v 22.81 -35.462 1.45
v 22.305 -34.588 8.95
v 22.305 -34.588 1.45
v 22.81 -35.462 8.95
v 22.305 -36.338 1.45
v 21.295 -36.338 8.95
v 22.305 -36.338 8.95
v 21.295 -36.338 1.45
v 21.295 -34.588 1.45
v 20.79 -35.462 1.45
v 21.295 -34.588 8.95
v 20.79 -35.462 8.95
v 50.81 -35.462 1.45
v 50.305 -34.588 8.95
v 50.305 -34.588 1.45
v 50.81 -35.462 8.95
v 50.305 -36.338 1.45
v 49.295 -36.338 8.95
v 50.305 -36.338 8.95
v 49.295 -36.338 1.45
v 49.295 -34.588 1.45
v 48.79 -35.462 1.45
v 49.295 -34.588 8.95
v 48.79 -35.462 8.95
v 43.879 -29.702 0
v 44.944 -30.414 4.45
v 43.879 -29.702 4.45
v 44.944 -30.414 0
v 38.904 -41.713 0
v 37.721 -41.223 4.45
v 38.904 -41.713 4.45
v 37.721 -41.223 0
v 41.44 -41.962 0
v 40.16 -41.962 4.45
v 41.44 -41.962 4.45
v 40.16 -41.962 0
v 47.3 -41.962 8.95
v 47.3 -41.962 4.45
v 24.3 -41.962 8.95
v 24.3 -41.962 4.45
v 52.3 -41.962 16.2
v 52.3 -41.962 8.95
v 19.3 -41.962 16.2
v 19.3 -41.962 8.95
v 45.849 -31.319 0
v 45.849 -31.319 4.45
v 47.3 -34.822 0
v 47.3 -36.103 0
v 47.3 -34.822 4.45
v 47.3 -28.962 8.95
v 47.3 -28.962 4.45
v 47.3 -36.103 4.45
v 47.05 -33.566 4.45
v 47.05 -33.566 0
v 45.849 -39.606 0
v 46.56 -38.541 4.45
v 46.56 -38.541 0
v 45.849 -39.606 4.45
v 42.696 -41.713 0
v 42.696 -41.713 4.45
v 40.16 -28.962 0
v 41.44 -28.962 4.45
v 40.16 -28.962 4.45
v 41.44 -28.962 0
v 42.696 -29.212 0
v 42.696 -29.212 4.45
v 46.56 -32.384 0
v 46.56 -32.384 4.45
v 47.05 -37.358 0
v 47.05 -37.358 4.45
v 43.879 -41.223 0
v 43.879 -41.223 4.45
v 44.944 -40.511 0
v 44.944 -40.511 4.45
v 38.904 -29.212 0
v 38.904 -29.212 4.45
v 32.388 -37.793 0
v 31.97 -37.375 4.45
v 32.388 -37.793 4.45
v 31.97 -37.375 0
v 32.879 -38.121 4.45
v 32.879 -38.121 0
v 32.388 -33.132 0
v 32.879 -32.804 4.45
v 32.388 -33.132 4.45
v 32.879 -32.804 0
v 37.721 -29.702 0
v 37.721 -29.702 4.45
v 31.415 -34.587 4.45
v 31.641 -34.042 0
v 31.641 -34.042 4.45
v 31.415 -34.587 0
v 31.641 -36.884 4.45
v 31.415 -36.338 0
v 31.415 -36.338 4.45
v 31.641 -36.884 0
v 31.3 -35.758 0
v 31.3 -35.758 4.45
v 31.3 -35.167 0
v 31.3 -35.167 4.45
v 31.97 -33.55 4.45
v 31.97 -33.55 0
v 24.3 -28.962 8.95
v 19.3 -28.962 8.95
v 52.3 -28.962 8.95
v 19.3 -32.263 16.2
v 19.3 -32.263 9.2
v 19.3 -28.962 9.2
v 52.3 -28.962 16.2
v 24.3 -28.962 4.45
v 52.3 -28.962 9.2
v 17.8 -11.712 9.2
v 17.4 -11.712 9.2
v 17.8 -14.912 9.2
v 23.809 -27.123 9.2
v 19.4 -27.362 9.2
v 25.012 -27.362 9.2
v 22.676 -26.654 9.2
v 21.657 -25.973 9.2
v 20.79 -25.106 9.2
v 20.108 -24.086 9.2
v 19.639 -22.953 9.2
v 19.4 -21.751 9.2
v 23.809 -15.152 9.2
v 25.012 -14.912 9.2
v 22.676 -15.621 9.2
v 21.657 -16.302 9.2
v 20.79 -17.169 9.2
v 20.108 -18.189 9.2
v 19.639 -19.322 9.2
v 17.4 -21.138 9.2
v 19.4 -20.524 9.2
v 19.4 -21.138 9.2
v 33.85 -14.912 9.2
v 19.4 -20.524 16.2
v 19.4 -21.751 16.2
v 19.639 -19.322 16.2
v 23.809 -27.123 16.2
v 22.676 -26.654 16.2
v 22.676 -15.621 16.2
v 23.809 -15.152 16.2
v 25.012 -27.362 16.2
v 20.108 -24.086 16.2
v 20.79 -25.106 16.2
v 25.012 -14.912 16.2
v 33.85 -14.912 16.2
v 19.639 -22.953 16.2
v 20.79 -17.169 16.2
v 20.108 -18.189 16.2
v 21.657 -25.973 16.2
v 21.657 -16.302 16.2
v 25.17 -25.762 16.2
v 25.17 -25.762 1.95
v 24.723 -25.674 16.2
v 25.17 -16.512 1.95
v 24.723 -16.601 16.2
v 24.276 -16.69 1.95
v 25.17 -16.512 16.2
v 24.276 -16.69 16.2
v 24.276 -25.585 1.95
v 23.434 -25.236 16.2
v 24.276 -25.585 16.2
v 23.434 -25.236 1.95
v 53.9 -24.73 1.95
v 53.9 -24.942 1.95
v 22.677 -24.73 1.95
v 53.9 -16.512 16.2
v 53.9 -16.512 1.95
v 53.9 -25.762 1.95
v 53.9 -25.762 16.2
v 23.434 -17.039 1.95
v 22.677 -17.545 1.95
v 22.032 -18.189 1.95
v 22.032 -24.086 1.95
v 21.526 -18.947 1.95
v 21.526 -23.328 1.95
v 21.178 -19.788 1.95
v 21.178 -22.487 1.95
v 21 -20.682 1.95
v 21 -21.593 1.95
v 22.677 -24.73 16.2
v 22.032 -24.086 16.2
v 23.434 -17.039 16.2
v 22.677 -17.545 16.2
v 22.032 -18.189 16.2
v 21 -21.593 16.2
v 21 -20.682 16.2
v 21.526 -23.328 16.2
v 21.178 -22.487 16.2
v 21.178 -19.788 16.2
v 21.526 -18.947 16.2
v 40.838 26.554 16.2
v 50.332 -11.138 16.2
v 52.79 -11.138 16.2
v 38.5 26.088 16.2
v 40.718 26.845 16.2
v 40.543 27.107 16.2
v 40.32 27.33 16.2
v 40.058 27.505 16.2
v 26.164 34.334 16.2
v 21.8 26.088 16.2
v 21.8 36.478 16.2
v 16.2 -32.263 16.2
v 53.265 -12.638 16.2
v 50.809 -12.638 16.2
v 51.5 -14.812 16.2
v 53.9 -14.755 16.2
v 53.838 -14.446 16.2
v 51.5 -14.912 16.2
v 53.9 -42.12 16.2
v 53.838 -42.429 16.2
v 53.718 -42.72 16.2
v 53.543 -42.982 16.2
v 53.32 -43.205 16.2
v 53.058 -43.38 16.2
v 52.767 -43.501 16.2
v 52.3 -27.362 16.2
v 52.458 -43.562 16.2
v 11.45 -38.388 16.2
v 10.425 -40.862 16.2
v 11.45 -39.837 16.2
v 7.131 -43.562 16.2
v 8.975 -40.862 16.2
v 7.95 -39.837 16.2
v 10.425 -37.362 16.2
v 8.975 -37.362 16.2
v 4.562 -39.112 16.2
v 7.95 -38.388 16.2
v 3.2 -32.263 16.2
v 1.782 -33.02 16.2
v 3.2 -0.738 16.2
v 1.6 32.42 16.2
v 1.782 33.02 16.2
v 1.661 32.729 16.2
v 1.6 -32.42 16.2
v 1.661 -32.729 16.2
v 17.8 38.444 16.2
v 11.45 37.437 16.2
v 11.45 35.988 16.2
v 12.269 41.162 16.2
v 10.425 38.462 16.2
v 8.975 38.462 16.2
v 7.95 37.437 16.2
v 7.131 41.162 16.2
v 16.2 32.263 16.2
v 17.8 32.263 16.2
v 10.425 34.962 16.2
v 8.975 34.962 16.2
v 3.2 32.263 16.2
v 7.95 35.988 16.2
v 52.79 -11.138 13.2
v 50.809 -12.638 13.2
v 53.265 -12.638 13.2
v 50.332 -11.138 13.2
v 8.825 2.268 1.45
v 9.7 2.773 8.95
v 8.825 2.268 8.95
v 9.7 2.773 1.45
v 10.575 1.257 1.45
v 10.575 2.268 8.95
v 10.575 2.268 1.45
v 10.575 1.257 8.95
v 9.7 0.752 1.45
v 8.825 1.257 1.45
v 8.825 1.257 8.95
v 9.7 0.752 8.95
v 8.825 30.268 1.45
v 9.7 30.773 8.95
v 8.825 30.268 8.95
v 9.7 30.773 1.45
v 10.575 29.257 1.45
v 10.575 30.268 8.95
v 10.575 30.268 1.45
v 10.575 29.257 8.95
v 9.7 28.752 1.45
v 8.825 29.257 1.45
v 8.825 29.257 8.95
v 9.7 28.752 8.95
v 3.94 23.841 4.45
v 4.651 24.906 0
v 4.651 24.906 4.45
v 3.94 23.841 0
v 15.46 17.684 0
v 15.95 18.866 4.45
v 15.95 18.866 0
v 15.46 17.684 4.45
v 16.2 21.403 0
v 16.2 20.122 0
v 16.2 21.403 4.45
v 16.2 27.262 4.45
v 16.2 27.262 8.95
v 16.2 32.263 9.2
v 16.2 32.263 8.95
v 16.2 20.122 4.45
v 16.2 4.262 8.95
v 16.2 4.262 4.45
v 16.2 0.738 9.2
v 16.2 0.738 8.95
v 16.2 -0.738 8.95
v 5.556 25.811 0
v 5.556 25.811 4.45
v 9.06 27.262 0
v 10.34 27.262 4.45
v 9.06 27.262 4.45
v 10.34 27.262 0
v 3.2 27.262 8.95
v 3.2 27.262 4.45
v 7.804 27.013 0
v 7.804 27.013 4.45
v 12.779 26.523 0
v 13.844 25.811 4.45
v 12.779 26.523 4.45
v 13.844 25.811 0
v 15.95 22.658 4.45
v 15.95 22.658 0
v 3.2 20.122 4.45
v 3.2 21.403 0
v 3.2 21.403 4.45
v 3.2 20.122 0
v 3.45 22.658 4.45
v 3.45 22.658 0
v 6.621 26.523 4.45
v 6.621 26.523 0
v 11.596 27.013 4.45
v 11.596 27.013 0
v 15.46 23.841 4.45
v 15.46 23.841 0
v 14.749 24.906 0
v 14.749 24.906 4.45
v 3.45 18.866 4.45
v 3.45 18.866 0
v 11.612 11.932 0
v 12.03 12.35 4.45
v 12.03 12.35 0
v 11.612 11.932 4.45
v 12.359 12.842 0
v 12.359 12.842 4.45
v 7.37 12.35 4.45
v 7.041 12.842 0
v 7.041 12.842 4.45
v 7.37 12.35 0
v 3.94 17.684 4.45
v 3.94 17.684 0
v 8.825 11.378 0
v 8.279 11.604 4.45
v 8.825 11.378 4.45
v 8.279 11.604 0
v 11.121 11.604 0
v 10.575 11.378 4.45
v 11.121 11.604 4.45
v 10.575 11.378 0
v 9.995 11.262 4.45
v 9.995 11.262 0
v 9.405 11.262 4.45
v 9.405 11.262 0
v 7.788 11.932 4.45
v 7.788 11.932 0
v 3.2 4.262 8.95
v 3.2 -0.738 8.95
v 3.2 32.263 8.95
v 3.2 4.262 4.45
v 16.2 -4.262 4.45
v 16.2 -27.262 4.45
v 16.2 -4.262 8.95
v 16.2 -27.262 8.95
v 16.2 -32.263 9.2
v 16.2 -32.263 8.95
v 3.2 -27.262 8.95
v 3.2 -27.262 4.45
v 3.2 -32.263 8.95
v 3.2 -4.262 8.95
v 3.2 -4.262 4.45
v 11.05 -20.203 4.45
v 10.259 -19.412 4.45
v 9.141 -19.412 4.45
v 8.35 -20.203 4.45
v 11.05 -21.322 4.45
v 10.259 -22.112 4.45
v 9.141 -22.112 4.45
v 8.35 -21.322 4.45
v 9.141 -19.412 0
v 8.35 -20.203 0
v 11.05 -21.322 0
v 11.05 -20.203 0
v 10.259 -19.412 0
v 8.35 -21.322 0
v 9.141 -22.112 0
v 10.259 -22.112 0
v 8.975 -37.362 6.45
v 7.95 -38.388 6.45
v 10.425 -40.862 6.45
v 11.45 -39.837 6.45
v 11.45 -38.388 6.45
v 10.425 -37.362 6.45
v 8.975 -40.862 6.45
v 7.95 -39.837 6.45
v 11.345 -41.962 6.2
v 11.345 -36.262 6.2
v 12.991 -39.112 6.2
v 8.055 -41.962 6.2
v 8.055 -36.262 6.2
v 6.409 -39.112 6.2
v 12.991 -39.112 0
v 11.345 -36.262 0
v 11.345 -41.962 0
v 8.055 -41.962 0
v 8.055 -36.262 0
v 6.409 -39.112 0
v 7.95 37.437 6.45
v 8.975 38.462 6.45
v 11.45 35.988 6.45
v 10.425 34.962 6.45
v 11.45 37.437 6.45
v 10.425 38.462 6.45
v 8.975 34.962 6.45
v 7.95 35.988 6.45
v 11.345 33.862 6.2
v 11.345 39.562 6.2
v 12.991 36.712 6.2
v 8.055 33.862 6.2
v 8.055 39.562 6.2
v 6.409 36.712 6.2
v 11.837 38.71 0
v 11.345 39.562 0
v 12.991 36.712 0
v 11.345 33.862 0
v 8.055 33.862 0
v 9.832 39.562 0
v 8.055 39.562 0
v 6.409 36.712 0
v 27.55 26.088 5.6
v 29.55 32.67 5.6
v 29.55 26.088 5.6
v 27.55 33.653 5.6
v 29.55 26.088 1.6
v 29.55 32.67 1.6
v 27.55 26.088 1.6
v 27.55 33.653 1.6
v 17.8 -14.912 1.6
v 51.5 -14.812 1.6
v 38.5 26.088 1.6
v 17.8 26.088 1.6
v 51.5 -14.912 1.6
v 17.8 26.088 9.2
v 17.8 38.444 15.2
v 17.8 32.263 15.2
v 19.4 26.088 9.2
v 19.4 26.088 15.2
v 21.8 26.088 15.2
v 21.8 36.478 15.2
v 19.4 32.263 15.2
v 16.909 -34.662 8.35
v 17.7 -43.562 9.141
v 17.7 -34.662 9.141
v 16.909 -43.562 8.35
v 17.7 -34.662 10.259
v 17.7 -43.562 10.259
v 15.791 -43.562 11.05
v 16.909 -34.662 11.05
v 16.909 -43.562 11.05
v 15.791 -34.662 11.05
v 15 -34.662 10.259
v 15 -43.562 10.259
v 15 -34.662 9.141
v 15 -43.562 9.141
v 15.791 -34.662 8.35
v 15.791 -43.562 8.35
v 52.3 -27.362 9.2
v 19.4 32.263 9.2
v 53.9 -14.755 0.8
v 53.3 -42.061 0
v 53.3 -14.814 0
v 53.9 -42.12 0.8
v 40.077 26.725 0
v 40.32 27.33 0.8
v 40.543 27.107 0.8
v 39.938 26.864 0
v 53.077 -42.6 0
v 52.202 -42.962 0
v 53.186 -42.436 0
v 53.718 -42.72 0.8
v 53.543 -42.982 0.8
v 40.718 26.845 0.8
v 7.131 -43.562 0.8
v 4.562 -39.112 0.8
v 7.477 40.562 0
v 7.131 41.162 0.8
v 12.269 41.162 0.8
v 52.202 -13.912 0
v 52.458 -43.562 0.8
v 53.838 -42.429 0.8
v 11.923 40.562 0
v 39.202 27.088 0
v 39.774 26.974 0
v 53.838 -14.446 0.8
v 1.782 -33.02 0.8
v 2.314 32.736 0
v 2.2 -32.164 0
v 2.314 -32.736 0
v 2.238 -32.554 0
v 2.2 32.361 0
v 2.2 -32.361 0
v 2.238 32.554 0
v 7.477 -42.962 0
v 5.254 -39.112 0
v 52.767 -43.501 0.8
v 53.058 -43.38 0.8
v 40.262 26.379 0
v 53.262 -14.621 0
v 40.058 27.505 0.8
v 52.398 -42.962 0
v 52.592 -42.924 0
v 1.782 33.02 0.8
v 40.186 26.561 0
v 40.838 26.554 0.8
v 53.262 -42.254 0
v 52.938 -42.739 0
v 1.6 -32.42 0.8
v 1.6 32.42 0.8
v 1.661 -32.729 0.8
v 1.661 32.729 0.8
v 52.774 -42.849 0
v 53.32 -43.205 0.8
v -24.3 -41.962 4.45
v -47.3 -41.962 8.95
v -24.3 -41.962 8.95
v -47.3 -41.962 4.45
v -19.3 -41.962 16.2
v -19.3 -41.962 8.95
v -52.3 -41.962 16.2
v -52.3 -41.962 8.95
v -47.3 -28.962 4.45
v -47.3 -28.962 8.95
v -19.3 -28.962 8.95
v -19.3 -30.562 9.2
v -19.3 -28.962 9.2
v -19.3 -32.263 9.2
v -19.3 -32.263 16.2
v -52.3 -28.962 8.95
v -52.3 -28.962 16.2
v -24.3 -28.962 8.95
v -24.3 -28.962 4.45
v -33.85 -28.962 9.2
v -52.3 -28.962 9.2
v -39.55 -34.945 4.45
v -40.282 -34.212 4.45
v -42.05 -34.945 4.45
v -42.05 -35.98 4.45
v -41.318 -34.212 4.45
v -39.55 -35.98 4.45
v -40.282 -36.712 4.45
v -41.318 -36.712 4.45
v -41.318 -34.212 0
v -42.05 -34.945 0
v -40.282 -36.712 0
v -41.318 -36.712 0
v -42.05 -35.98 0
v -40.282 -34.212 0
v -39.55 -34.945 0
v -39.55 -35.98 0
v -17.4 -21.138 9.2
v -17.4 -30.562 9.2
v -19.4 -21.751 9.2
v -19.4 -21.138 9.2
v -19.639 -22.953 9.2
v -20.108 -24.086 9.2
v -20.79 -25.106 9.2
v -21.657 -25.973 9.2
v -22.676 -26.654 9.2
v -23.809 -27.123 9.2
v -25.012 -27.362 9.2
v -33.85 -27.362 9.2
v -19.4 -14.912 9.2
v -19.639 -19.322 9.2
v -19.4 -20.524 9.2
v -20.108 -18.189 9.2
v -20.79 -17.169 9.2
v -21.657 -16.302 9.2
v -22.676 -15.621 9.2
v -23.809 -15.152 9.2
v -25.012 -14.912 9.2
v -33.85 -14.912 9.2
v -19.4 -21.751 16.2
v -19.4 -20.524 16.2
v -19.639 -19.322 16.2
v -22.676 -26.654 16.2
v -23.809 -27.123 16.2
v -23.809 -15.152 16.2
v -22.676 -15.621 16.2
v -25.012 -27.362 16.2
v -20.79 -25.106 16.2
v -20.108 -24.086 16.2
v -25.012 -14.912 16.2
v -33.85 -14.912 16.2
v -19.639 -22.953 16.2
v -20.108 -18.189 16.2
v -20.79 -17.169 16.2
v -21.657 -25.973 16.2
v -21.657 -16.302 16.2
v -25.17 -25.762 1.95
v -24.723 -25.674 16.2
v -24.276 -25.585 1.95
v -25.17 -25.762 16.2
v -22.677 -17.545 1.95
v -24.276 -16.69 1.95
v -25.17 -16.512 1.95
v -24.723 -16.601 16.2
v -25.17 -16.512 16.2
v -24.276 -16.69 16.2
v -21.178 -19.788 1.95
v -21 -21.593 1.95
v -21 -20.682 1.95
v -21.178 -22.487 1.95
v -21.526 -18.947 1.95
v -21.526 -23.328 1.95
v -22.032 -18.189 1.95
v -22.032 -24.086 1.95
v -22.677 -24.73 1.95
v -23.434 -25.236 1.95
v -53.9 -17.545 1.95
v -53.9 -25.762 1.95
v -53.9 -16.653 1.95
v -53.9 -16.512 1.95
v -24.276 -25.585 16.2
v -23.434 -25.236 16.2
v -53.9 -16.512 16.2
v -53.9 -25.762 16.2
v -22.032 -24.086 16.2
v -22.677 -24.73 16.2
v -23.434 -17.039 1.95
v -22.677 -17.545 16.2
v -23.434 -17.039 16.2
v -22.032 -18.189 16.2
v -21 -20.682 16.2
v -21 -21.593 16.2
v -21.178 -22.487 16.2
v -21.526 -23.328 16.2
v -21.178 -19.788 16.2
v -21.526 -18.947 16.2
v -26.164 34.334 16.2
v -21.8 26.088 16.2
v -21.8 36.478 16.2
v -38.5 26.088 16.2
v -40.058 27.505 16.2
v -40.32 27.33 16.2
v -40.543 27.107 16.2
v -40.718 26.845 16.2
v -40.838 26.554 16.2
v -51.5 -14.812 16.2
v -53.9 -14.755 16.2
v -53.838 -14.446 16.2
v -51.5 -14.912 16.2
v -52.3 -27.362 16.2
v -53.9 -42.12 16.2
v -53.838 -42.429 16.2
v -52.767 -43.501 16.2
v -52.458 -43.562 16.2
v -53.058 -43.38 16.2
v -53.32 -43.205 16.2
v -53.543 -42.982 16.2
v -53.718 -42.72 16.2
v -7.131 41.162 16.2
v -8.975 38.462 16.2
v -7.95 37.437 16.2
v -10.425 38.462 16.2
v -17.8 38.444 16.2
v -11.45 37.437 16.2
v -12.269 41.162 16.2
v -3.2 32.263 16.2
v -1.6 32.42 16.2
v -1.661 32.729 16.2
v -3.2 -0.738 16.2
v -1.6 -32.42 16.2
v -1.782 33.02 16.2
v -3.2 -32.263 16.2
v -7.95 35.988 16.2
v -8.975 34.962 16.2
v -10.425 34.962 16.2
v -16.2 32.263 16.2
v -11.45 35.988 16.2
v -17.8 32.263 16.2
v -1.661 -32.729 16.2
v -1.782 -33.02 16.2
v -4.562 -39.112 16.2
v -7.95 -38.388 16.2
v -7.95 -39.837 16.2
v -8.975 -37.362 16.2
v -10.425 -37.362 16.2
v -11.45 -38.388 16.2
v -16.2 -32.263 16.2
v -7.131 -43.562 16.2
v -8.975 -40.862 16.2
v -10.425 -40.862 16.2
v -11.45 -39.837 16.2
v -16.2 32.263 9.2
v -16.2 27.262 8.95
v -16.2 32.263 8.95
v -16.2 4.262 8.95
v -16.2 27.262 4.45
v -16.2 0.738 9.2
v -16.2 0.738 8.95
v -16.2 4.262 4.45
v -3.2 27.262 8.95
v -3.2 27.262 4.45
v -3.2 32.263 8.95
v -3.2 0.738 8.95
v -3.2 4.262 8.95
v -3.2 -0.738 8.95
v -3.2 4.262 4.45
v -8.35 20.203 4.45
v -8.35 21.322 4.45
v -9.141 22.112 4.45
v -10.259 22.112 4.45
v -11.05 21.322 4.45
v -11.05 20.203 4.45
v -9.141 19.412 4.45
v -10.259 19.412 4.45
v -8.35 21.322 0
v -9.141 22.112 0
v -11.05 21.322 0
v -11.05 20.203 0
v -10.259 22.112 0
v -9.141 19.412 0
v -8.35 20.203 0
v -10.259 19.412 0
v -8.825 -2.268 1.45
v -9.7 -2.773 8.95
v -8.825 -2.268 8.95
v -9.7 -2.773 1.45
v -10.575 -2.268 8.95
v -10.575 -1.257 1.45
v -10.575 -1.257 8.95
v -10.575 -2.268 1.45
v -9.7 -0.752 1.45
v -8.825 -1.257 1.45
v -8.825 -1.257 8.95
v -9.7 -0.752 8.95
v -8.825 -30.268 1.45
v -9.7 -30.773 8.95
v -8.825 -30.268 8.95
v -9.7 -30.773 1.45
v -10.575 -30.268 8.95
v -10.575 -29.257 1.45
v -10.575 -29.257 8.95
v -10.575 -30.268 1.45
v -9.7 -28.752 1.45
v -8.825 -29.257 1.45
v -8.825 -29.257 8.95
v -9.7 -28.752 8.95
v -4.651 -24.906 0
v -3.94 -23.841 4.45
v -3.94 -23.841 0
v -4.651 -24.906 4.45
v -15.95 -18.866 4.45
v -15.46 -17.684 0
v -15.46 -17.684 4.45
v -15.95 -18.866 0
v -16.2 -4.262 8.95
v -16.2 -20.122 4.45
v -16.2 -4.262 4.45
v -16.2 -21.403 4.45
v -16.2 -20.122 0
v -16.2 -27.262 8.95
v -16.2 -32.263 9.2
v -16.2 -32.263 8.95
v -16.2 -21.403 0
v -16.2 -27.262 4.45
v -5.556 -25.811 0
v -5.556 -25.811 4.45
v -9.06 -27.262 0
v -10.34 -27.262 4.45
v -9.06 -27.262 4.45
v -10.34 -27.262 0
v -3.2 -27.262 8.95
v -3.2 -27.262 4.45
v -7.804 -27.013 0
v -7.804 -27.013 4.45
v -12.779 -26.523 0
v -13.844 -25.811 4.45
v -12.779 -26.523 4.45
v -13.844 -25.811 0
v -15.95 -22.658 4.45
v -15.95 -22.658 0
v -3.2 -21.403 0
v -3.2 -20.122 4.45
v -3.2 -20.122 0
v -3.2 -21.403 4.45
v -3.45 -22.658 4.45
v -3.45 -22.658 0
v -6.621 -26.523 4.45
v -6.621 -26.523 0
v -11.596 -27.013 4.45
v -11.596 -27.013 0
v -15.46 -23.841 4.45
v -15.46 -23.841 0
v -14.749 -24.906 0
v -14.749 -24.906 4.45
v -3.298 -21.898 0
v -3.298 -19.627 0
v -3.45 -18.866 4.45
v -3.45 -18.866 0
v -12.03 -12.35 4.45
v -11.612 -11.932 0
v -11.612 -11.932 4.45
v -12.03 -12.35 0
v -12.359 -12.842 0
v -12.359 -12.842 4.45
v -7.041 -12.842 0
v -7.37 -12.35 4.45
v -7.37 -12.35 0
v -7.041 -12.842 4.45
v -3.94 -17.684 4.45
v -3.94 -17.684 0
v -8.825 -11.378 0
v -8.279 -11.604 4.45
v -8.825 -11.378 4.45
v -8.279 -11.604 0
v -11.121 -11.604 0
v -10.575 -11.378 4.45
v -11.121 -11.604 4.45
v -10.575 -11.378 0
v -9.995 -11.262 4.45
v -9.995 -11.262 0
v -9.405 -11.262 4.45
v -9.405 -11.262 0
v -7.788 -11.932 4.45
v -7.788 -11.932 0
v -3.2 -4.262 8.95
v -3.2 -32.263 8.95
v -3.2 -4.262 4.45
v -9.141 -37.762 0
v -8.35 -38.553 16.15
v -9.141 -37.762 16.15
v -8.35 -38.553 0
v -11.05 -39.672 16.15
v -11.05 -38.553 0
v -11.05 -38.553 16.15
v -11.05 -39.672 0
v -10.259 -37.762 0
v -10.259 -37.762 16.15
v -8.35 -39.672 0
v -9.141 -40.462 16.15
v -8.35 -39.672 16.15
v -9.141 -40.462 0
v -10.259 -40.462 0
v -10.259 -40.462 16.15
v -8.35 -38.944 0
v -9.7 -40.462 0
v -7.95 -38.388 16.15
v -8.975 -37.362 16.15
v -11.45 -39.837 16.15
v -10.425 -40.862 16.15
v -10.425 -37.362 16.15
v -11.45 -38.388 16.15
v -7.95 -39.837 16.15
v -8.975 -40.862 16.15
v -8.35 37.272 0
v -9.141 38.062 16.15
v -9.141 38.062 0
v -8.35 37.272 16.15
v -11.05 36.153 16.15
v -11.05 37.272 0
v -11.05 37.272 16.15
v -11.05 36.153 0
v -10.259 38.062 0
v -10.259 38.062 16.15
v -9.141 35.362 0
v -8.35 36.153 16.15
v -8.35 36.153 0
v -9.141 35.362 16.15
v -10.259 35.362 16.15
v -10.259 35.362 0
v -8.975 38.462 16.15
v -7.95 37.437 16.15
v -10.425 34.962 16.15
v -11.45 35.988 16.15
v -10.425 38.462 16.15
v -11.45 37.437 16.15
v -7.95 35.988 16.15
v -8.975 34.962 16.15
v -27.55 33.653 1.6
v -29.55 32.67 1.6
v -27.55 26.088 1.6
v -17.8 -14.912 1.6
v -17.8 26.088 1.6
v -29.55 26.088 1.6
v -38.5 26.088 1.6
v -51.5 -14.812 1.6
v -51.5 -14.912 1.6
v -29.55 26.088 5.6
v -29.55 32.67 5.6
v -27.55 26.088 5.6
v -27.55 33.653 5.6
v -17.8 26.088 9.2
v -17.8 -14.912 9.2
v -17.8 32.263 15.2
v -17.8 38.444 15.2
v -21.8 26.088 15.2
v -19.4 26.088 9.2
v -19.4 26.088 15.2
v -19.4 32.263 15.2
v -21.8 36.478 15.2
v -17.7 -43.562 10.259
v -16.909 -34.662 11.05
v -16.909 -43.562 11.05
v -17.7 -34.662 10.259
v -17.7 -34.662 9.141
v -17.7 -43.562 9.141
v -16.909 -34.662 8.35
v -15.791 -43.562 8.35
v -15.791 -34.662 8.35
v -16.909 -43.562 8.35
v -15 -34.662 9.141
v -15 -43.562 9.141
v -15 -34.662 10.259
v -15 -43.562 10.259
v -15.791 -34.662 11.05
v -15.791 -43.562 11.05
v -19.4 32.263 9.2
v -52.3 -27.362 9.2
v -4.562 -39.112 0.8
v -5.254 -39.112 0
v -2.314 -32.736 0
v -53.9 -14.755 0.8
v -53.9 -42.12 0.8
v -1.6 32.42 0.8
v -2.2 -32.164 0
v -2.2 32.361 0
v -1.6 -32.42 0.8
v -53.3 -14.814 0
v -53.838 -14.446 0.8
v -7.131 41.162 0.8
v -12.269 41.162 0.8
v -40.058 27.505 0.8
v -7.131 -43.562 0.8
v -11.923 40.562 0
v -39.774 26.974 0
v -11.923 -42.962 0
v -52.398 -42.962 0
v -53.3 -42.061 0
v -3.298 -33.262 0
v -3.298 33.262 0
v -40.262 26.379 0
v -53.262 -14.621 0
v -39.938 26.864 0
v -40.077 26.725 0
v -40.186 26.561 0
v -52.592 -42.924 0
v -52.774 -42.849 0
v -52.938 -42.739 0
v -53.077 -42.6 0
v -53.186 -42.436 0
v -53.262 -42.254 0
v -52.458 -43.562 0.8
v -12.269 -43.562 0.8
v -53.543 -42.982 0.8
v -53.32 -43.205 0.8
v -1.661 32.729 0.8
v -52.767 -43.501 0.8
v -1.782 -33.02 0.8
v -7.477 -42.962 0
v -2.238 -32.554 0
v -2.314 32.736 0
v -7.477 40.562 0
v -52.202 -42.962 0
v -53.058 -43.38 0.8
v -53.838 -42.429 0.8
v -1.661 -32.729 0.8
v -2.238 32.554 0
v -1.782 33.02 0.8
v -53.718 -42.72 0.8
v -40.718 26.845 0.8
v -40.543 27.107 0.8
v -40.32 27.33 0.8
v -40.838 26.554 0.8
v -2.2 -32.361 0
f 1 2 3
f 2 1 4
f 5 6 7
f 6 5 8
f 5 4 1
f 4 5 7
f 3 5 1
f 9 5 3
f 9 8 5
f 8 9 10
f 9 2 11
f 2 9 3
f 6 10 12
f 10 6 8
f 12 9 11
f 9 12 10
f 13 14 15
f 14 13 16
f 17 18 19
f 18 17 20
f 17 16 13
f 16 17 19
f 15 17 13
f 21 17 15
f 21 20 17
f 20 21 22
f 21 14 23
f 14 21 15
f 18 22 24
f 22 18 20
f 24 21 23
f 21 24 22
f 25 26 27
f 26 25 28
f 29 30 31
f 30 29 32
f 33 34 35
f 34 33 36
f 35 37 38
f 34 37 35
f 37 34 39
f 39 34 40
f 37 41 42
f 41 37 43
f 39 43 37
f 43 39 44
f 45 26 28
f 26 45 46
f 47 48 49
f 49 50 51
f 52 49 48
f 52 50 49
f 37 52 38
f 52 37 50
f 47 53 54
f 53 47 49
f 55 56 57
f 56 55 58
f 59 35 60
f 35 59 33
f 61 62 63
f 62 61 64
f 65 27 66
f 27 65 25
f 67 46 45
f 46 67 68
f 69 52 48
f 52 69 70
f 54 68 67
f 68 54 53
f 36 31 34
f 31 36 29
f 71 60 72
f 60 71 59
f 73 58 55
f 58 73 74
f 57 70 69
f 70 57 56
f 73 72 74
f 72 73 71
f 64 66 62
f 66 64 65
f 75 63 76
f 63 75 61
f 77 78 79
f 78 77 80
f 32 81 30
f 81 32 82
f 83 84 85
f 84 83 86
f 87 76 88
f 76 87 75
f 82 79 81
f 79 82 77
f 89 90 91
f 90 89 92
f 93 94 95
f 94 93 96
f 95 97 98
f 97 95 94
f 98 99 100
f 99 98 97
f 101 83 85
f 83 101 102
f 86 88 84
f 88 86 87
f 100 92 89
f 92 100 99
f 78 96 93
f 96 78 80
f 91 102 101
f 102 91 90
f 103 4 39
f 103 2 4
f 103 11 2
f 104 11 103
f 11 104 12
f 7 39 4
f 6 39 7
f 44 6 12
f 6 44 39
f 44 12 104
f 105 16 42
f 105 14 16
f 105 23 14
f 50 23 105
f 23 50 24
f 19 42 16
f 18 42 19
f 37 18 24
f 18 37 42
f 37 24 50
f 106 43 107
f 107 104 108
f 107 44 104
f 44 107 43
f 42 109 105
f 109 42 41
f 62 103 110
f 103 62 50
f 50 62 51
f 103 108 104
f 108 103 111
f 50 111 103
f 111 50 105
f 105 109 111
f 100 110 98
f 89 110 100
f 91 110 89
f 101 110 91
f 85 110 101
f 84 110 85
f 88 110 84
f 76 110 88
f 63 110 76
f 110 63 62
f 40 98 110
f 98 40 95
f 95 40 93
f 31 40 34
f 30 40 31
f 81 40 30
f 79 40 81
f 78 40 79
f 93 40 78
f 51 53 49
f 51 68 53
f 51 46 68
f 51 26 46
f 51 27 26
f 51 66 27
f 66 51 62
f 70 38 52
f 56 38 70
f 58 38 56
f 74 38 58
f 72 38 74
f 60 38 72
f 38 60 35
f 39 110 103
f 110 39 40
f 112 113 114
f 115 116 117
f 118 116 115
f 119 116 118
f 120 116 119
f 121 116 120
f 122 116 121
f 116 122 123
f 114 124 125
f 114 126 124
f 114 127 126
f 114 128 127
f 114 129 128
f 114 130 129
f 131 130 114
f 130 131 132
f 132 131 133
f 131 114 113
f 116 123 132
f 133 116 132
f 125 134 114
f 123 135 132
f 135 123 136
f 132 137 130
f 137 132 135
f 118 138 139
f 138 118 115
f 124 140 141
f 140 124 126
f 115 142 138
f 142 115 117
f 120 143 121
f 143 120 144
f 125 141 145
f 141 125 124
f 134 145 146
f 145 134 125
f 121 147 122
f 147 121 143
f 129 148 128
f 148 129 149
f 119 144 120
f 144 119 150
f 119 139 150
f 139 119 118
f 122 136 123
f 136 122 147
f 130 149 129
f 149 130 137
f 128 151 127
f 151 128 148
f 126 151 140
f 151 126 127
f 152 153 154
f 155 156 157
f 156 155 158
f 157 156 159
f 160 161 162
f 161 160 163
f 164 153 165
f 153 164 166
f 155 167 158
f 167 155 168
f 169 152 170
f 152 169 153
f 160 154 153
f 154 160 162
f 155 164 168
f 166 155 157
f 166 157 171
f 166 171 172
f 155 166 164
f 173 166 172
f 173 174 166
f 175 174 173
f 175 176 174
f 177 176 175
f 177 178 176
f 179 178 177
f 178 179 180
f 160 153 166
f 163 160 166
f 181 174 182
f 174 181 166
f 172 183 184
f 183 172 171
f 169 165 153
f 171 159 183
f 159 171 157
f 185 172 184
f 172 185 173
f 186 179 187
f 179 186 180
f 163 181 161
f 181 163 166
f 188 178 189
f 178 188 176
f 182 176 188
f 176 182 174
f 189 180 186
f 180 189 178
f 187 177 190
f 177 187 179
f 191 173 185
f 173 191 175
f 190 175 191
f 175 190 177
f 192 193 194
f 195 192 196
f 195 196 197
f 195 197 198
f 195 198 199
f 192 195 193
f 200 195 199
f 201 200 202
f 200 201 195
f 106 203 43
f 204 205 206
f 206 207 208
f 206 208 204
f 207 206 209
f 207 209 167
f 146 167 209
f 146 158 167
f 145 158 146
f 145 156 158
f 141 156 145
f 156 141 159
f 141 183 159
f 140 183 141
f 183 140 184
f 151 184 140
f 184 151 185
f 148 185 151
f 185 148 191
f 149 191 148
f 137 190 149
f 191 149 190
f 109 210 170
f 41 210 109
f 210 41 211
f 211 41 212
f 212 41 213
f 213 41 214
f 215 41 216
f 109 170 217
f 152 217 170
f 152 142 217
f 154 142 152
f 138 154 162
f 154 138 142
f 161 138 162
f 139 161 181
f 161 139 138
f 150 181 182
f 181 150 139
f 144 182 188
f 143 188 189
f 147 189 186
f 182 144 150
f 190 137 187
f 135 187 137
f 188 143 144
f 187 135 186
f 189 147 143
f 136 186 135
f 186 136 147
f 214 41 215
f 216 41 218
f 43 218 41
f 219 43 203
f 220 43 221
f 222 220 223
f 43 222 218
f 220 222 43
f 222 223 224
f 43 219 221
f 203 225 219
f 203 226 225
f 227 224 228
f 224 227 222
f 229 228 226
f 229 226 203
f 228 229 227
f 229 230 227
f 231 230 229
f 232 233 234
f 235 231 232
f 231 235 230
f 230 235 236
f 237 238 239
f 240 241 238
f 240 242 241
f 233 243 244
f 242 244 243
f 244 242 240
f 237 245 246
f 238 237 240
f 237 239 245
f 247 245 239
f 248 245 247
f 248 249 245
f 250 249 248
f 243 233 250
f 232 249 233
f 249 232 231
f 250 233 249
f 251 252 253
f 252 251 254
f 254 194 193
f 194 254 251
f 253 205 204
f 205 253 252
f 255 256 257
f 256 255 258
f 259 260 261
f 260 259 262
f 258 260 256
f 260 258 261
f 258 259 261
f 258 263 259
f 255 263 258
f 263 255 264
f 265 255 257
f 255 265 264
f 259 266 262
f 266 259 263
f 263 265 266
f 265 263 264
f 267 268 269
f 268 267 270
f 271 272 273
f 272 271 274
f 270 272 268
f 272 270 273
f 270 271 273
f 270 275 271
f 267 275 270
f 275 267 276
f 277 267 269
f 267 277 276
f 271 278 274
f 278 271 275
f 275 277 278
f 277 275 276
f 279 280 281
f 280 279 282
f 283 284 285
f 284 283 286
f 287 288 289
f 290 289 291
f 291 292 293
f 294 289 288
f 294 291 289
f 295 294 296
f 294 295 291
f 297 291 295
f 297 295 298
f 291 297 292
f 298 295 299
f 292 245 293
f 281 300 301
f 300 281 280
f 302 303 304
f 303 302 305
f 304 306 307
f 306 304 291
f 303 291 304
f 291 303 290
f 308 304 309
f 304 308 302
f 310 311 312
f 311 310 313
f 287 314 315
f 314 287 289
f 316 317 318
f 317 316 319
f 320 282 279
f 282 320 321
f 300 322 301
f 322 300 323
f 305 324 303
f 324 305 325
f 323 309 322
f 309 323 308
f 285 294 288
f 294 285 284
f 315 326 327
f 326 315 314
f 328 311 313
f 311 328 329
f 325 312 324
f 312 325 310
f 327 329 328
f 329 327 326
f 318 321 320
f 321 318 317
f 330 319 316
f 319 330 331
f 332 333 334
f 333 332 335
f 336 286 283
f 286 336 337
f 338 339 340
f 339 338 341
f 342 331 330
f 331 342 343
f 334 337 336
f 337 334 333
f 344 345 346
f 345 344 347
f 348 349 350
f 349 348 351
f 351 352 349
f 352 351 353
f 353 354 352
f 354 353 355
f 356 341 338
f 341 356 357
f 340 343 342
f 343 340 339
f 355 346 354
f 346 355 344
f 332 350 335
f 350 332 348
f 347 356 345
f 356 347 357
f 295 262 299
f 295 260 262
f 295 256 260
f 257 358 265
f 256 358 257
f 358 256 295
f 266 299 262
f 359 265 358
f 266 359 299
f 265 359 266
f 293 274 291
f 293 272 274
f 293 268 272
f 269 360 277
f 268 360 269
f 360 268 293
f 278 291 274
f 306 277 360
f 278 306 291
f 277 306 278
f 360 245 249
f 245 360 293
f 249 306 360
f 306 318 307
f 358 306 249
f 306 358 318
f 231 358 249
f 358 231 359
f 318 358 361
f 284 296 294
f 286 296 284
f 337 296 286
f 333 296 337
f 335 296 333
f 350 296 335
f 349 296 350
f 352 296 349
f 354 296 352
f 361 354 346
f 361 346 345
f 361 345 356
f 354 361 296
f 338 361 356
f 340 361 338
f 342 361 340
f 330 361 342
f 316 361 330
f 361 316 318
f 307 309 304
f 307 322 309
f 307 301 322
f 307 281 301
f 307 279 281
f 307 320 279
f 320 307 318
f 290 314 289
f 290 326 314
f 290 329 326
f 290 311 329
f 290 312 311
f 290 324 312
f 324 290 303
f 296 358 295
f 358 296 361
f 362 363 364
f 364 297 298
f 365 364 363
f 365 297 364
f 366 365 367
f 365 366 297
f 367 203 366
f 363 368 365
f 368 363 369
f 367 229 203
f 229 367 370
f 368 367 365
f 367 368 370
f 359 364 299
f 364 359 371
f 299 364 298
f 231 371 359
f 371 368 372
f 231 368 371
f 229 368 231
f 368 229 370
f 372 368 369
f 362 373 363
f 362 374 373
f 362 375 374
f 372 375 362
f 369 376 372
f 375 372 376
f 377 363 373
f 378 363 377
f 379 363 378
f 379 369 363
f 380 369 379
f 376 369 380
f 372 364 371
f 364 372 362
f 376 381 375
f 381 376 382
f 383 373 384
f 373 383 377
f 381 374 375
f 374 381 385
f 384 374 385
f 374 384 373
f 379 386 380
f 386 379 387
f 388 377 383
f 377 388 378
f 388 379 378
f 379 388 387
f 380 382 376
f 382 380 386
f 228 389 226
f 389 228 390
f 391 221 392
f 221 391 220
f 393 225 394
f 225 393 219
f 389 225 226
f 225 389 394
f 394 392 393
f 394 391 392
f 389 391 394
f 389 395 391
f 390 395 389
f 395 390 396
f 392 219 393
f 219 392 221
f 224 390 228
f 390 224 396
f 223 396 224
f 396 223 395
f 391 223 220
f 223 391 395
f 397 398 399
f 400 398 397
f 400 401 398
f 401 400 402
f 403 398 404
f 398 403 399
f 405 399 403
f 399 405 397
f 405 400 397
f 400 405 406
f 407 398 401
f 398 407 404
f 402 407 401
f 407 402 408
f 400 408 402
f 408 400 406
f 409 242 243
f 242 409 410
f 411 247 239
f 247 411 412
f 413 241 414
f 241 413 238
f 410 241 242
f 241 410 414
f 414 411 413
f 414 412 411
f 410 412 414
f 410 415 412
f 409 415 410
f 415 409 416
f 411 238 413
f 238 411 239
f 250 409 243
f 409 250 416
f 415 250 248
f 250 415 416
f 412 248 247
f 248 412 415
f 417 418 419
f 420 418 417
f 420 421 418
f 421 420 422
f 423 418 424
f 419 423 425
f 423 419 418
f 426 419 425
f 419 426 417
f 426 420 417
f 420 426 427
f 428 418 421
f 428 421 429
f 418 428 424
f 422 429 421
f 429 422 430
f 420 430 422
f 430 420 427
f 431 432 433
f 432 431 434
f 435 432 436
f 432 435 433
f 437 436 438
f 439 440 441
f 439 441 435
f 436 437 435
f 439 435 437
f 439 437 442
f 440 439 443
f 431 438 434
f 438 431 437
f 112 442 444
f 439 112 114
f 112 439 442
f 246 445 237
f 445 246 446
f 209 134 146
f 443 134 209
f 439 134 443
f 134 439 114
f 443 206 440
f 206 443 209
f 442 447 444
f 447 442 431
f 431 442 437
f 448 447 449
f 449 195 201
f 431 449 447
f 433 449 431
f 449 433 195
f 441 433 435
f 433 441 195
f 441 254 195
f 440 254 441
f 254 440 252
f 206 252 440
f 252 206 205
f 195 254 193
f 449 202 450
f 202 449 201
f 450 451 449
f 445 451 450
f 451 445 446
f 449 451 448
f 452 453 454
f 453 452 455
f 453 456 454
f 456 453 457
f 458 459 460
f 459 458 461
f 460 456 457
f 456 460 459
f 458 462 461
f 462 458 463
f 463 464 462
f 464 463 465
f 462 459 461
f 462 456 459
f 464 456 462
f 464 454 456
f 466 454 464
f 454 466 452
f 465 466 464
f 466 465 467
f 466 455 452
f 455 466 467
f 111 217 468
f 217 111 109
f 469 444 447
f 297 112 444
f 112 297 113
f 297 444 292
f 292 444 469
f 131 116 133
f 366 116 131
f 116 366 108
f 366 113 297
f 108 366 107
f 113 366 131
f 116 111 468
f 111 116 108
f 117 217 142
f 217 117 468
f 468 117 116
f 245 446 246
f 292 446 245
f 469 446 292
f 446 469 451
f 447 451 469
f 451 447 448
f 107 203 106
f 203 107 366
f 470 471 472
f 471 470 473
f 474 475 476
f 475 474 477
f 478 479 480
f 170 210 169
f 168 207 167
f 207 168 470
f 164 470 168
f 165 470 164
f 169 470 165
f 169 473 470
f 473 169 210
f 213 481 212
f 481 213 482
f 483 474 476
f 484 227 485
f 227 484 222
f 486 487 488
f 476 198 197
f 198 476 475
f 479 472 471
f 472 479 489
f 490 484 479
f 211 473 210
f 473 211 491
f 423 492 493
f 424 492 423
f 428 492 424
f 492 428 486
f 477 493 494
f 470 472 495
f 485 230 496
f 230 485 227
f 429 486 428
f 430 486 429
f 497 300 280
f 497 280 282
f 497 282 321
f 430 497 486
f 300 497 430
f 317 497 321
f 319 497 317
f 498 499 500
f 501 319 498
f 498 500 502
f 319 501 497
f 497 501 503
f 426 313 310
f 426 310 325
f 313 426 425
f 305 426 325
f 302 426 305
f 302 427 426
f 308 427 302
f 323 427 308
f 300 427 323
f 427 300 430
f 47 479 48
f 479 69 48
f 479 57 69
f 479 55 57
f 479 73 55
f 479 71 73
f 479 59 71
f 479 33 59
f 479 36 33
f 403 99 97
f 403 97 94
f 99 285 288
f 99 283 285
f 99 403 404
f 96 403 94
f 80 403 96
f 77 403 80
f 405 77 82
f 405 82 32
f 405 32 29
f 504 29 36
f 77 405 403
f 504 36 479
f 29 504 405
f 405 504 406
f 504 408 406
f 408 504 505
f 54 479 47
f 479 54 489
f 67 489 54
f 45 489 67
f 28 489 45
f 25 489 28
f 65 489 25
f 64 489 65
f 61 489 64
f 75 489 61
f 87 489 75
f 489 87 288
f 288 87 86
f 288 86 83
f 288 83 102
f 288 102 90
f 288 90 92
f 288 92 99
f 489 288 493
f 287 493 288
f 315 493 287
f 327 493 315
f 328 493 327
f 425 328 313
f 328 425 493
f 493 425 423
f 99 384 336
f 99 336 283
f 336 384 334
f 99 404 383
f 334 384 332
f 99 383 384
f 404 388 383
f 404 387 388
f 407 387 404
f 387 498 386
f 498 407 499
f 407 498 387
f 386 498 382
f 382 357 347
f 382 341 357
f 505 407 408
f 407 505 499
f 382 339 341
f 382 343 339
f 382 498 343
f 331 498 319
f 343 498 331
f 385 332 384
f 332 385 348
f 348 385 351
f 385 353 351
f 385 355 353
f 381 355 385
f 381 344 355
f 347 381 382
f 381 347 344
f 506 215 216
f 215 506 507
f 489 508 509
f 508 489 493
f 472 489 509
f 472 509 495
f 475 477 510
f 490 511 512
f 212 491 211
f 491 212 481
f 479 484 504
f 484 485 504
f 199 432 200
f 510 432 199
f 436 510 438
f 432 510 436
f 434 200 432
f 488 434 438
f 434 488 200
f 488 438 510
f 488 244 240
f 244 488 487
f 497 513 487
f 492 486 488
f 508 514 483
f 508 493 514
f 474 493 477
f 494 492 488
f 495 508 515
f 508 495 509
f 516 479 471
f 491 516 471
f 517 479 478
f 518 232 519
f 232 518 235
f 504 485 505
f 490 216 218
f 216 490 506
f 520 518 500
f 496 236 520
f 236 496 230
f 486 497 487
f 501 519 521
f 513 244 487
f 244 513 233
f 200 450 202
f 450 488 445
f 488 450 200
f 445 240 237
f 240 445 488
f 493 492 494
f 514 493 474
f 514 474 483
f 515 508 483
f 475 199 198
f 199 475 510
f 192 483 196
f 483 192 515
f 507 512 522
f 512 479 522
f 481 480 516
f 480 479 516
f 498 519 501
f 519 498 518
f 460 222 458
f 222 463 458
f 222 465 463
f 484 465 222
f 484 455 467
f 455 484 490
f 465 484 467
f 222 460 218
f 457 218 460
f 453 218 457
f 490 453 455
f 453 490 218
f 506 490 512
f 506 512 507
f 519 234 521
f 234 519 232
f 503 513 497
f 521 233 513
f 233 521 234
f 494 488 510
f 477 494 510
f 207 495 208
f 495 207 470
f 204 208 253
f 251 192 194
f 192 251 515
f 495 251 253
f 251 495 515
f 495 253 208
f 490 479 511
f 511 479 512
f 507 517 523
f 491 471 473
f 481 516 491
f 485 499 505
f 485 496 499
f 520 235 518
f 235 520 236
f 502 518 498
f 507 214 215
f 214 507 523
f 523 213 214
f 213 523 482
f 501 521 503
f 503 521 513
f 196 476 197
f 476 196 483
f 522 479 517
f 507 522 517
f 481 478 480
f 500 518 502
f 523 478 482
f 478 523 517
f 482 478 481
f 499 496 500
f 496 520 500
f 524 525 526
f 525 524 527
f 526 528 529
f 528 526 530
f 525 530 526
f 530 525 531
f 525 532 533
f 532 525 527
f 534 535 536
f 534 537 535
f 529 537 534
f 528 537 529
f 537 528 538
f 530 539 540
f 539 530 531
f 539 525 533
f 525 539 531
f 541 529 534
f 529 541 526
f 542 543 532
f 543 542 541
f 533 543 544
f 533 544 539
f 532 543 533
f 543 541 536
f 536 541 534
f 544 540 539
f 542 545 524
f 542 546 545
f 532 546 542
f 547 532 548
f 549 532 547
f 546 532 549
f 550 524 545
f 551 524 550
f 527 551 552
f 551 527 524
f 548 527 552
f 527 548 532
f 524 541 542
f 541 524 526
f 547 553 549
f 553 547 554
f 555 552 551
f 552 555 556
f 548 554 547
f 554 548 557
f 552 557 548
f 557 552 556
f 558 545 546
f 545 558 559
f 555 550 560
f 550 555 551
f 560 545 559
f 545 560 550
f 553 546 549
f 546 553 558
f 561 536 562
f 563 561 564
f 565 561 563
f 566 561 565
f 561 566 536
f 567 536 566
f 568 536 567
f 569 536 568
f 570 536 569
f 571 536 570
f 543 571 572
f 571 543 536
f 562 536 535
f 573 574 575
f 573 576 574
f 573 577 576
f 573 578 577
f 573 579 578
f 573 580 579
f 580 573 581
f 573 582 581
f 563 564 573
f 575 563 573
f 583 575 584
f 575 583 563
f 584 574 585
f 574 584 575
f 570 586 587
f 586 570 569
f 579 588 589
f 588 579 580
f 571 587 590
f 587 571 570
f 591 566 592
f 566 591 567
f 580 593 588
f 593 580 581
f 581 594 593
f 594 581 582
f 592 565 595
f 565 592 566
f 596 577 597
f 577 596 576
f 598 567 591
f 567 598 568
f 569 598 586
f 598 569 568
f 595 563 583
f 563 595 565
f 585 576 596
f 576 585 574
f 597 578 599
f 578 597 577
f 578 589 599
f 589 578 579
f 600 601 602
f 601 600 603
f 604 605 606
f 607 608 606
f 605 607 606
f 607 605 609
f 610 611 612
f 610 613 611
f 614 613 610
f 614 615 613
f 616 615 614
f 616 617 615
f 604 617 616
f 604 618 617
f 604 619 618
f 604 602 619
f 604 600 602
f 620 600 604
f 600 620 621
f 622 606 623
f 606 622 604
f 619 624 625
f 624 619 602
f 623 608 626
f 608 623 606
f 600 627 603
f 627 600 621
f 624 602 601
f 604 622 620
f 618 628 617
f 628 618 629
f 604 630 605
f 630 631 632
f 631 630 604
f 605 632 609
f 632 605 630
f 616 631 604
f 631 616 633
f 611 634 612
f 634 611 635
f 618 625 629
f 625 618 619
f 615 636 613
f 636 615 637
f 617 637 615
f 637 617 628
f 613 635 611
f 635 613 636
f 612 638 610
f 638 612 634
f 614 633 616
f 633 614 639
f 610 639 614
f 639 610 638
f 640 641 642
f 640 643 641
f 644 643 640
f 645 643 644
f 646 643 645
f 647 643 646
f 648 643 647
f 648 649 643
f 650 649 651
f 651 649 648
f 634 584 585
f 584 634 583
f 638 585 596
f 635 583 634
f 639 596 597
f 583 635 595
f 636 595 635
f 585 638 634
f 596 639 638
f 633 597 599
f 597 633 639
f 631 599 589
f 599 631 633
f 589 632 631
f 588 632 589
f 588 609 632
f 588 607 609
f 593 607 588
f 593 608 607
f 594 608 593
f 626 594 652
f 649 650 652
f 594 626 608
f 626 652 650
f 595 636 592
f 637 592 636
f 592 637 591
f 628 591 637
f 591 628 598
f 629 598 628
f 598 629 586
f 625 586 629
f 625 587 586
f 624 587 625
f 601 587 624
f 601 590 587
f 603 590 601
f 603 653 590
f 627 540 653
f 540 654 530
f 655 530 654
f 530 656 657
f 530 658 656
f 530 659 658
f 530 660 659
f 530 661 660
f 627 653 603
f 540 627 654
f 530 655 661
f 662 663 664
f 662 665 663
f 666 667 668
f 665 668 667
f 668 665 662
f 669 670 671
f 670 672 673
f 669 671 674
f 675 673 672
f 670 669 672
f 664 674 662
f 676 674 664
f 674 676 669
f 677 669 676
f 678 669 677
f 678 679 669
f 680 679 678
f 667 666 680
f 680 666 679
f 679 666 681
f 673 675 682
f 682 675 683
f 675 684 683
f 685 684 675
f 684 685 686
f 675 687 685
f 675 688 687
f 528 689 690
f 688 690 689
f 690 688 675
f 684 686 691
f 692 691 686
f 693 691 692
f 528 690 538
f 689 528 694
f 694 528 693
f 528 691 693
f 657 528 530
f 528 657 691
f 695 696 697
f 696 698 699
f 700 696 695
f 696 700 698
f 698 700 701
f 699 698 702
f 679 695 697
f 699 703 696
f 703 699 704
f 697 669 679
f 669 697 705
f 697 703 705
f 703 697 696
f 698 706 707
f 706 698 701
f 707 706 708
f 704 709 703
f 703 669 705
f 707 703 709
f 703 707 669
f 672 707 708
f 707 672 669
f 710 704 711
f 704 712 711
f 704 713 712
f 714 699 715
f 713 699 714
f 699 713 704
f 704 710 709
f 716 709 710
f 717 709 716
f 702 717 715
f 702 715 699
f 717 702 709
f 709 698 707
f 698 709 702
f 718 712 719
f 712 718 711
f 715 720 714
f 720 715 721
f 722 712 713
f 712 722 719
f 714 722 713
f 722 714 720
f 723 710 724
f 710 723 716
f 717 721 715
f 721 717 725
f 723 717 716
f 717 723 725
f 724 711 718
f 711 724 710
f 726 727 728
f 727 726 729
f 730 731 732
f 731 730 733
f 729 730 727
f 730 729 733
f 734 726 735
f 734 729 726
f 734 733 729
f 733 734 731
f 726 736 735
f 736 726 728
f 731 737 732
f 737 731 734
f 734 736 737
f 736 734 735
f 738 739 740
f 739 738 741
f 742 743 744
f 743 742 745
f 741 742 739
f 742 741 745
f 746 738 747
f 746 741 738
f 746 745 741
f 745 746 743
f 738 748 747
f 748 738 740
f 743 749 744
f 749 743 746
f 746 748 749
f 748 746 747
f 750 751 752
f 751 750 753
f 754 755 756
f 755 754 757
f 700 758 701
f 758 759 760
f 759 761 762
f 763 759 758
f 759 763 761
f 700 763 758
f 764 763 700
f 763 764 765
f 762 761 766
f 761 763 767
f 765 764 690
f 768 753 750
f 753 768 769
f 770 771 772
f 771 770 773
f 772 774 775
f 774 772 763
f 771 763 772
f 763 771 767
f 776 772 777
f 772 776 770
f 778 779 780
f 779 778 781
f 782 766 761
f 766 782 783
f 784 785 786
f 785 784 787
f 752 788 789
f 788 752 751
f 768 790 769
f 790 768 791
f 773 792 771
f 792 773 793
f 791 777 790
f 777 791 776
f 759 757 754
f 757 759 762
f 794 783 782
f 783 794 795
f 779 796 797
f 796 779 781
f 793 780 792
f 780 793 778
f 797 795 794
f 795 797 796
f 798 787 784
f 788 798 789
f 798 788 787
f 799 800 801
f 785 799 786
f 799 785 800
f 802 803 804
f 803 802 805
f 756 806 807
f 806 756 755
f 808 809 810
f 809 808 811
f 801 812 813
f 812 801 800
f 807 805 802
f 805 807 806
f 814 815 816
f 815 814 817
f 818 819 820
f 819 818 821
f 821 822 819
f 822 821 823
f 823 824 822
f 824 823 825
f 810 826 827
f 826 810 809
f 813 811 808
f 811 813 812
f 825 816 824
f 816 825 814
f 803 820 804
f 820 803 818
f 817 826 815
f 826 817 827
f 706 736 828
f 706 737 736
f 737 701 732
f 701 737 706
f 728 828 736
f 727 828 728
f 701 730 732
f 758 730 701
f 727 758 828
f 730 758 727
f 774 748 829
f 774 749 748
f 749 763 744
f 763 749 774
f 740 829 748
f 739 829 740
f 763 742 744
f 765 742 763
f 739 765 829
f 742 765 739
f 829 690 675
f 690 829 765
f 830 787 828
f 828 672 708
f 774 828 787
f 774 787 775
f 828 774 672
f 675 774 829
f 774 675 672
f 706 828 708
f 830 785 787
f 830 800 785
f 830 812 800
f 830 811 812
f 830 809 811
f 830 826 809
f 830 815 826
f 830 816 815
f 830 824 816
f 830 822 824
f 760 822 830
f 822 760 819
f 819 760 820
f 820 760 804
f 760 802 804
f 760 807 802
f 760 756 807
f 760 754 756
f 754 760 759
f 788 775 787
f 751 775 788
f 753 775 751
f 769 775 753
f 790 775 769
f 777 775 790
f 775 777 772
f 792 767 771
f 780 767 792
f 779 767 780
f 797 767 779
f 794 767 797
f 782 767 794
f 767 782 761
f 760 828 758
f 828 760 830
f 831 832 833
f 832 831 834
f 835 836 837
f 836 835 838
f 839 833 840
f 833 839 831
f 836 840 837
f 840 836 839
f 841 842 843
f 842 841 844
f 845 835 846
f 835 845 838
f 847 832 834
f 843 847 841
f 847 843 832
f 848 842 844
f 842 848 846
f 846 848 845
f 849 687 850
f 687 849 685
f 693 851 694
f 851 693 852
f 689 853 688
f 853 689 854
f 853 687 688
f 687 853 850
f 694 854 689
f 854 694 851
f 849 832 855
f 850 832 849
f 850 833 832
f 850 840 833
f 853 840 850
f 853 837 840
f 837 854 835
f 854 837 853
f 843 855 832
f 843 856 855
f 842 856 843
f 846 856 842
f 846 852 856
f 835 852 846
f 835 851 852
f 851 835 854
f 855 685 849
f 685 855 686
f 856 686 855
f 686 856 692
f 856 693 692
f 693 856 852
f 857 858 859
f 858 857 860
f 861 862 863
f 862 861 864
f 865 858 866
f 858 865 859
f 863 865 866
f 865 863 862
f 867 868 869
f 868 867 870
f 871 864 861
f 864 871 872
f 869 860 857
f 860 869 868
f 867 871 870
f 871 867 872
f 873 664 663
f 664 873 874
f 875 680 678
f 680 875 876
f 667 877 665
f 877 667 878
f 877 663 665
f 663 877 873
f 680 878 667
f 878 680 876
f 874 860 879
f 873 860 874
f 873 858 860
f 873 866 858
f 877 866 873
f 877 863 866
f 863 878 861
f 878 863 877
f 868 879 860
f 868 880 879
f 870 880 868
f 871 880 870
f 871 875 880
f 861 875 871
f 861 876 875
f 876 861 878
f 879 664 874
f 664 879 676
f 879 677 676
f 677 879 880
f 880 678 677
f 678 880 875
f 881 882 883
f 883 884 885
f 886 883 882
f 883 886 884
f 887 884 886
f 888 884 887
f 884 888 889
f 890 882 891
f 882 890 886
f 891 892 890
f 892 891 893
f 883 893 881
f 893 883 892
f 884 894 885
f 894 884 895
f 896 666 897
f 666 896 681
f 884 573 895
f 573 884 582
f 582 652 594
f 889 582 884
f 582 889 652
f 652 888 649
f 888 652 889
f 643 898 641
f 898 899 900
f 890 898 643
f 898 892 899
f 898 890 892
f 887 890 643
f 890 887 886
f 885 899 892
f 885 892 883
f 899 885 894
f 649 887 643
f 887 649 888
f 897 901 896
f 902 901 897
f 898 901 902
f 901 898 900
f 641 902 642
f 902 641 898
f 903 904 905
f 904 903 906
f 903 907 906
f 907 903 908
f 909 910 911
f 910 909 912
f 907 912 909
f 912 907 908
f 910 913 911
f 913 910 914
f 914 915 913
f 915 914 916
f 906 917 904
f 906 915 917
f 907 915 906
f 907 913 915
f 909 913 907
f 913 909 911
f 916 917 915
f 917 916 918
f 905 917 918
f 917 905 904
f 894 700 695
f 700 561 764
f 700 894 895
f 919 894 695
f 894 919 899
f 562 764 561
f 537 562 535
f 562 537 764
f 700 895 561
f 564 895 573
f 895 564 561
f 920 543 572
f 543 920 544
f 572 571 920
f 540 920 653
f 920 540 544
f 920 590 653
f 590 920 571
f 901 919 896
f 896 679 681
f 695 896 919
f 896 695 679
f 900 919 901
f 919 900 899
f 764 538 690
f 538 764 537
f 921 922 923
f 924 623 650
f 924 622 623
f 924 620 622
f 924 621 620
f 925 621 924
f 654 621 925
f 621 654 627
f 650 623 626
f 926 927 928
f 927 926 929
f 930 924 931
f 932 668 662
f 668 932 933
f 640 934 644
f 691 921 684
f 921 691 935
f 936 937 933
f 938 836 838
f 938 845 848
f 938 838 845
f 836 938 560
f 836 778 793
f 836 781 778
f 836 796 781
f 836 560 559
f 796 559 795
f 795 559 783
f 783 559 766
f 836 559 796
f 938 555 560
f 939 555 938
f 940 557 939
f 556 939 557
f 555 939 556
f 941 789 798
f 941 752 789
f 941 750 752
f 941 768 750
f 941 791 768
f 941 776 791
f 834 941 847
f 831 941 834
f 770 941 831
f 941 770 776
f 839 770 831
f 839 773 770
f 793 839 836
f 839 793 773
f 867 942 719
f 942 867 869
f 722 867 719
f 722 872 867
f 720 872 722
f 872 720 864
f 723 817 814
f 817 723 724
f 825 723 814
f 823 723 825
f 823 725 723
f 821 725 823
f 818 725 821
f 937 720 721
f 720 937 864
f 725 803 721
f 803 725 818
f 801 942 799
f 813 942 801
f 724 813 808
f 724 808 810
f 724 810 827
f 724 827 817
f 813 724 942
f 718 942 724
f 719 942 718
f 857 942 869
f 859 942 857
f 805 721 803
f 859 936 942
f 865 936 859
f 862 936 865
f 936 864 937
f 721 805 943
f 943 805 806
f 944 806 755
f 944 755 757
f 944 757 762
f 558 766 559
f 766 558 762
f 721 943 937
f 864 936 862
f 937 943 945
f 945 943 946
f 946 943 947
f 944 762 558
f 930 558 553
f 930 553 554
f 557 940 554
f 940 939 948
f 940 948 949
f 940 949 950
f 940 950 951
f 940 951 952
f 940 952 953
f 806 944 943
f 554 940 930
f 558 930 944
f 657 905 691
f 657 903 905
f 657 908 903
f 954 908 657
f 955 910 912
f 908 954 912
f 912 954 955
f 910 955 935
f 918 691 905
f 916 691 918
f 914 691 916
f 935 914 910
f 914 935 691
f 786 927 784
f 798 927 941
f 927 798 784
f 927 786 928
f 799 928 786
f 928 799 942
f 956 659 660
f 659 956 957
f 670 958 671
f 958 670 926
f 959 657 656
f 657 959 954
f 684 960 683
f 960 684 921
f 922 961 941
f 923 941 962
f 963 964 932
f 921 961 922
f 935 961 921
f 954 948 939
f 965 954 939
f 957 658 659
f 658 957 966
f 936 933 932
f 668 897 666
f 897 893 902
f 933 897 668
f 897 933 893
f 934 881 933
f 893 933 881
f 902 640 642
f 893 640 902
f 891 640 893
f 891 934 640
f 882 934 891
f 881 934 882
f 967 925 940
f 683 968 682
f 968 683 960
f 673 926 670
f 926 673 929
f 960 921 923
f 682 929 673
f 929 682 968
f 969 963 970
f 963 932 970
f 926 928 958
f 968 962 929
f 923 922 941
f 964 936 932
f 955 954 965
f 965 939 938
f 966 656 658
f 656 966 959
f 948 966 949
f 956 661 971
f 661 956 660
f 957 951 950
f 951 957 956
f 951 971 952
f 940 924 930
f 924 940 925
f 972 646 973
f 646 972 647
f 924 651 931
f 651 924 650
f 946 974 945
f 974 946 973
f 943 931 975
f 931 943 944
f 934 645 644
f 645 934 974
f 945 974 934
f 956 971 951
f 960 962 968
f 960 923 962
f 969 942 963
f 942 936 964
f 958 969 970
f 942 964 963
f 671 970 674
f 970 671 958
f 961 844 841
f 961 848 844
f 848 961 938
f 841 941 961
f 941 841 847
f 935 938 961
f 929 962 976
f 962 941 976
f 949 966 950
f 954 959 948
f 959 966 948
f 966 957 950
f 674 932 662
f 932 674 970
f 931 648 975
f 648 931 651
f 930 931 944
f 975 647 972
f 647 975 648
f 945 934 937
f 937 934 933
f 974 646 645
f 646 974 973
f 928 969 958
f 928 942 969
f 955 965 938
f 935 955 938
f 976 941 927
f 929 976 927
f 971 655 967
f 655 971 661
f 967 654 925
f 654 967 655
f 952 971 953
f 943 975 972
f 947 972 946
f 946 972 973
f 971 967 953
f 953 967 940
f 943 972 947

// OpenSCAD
// file: util.scad
left   = -1;
right  = 1;
front  = -1;
rear   = 1;
top    = 1;
bottom = -1;

inch = 25.4;

x = 0;
y = 1;
z = 2;

width  = x;
depth  = y;
height = z;

m3_diam = 3;

function accurate_diam(diam,sides) = 1 / cos(180/sides) / 2 * diam;

module hole(diam,len,sides=8) {
  rotate([0,0,180/sides]) {
    cylinder(r=accurate_diam(diam,sides),h=len,center=true,$fn=sides);
  }
}

module accurate_circle(diam,sides=8) {
  rotate([0,0,180/sides]) {
    circle(r=accurate_diam(diam,sides),center=true,$fn=sides);
  }
}

module debug_axes() {
  color("red") {
    translate([50,0,0]) cube([100,.2,.2],center=true);
    translate([0,50,0]) cube([.2,100,.2],center=true);
    translate([0,0,50]) cube([.2,.2,100],center=true);
  }
}

// Motors
nema17_side = 42.5;
nema17_diam = 55.5;
nema17_len = 36; // "half-length" nema 17
nema17_len = 48;
nema17_hole_spacing = 31;
nema17_screw_diam = m3_diam;
nema17_shaft_diam = 5;
nema17_shaft_len = 22;
nema17_short_shaft_len = 0;
nema17_shoulder_height = 2;
nema17_shoulder_diam = nema17_hole_spacing*.75;

nema14_side = 35.3;
nema14_len = 36;
nema14_hole_spacing = 26;
nema14_screw_diam = m3_diam;
nema14_shaft_diam = 5;
nema14_shaft_len = 20;
nema14_short_shaft_len = 20;
nema14_shoulder_height = 2;
nema14_shoulder_diam = 22;

motor_side = nema17_side;
motor_diam = nema17_diam;
motor_len = nema17_len;
motor_hole_spacing = nema17_hole_spacing;
motor_shaft_diam = nema17_shaft_diam;
motor_shaft_len = nema17_shaft_len;
motor_short_shaft_len = nema17_short_shaft_len;
motor_shoulder_height = nema17_shoulder_height;
motor_shoulder_diam = nema17_shoulder_diam;


module motor() {
  module body() {
    translate([0,0,-motor_len/2]) {
      cube([motor_side,motor_side,motor_len],center=true);

      // shaft
      translate([0,0,motor_len/2+motor_shaft_len/2+motor_shoulder_height])
        cylinder(r=5/2,h=motor_shaft_len,center=true,$fn=16);

      // shoulder
      translate([0,0,motor_len/2+motor_shoulder_height/2-0.05])
        cylinder(r=motor_shoulder_diam/2,h=motor_shoulder_height+0.05,center=true); // shoulder

      // short shaft
      translate([0,0,-motor_len/2-motor_short_shaft_len/2])
        cylinder(r=5/2,h=motor_short_shaft_len,center=true);
    }
  }

  module holes() {
    // mount holes
    for (side=[left,right]) {
      for(end=[top, bottom]) {
        translate([motor_hole_spacing/2*side,motor_hole_spacing/2*end,0]) {
          hole(3,motor_len*3,12);
        }
      }
    }
  }

  difference() {
    body();
    holes();
  }
}
// main file
include <main.scad>;

for(side=[left,right]) {
  translate([-side*(servo_width/2+wall_thickness*2),0,overall_width/2]) {
    rotate([0,-side*90,0]) {
      body_side(side);
    }
  }
}
